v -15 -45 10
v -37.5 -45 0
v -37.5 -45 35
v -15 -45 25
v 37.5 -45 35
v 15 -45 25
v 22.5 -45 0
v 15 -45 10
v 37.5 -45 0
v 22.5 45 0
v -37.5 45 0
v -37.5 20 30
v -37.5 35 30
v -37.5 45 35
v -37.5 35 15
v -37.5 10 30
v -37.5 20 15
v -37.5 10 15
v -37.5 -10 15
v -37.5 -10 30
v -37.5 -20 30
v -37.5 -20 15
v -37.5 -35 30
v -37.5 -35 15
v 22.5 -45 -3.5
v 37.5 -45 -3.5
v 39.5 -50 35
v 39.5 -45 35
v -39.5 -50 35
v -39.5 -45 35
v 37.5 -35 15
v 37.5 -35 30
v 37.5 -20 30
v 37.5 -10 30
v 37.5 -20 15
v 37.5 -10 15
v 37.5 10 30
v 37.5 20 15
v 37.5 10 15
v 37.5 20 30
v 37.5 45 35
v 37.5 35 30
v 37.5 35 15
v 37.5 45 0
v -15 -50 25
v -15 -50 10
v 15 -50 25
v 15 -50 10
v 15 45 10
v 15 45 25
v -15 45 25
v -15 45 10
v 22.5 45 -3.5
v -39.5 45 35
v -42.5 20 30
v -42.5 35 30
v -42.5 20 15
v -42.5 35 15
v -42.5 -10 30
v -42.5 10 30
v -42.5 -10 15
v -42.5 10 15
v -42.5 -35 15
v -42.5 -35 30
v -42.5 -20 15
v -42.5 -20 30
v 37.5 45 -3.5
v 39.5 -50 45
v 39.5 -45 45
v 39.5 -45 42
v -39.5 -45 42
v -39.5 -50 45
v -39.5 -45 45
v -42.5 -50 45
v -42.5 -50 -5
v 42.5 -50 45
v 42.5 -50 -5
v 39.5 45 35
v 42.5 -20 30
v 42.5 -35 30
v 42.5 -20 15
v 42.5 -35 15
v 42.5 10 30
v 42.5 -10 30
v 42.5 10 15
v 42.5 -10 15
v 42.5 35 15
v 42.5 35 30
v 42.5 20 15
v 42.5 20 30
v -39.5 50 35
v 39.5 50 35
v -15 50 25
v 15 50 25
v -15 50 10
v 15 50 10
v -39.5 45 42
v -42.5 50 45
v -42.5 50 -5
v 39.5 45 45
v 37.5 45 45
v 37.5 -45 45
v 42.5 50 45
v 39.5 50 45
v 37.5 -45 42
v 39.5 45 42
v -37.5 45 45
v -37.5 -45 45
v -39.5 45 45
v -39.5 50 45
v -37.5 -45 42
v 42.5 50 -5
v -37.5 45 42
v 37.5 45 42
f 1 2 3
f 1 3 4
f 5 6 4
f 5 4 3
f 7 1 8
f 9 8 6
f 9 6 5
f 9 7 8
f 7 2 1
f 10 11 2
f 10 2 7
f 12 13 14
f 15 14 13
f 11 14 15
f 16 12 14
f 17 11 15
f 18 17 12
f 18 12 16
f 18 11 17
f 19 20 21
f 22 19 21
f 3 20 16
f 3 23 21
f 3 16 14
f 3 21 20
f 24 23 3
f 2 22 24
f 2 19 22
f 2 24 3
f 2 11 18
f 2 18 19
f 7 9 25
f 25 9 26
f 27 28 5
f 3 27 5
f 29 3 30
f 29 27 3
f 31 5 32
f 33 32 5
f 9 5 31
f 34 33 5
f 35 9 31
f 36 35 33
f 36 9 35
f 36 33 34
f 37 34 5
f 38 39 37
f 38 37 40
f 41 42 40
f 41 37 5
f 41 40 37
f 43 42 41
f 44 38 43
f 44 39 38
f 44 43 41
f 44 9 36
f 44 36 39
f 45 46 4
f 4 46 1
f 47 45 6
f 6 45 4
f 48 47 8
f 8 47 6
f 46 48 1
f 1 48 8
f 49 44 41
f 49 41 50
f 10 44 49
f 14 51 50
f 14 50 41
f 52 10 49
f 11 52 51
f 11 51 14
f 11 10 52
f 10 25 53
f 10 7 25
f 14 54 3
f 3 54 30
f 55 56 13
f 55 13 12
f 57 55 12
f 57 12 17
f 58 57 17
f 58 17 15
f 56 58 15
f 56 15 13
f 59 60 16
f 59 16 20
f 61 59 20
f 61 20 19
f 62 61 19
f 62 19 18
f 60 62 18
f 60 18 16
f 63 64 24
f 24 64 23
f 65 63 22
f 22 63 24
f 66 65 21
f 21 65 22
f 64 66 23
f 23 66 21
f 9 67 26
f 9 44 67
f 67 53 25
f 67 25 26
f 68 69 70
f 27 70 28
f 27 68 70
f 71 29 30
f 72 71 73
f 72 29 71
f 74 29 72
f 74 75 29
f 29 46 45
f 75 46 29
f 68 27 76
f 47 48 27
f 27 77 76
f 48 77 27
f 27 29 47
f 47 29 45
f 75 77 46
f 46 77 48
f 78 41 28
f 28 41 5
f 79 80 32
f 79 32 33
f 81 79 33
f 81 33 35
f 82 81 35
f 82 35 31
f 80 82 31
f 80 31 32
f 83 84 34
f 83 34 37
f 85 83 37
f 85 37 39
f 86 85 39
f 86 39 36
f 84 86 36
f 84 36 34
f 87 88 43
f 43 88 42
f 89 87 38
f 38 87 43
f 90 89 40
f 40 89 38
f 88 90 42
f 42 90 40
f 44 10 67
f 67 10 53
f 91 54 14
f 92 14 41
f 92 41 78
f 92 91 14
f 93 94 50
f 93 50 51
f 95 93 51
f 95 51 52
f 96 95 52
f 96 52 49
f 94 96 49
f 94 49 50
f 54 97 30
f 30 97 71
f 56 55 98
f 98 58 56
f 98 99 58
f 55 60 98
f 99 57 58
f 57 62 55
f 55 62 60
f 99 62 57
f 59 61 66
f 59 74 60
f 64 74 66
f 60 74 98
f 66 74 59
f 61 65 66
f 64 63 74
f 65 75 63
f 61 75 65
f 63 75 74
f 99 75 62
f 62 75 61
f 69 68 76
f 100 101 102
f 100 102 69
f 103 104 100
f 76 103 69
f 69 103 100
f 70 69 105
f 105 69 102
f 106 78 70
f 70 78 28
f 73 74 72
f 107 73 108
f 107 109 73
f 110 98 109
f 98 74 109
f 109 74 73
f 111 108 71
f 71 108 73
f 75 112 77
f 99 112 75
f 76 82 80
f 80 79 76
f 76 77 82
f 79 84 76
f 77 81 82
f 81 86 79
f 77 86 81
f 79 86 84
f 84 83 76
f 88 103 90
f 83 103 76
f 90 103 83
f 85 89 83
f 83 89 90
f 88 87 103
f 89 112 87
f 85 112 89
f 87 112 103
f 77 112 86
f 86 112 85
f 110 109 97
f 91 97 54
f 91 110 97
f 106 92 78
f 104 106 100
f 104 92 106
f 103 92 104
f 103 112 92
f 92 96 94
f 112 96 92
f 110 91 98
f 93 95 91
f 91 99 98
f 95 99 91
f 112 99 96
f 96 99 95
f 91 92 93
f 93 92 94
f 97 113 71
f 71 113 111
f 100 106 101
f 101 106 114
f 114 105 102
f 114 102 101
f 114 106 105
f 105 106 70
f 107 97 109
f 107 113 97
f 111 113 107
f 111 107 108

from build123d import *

# Parameters (mm, degrees)
SKETCH_W        = 75
SKETCH_H        = 90
PAD_DEPTH       = 45
THICKNESS_T     = 5
SKETCH002_W     = 15
SKETCH002_H     = 90
POCKET_DEPTH    = 3.5
SKETCH003_W     = 79
SKETCH003_H     = 10
POCKET001_DEPTH = 5
SKETCH004_W     = 79
SKETCH004_H     = 10
POCKET002_DEPTH = 5
SKETCH005_W     = 79
SKETCH005_H     = 7
POCKET003_DEPTH = 90
SKETCH006_W     = 15
SKETCH006_H     = 15
SKETCH006_W_2   = 20
POCKET004_DEPTH = 5
SKETCH007_W     = 15
SKETCH007_H     = 15
SKETCH007_W_2   = 20
POCKET005_DEPTH = 5
SKETCH008_W     = 30
SKETCH008_H     = 15
POCKET006_DEPTH = 5
SKETCH009_W     = 30
SKETCH009_H     = 15
POCKET007_DEPTH = 5


with BuildPart() as part:
    # Sketch → Pad (new body)
    with BuildSketch(Plane.XY):
        Rectangle(SKETCH_W, SKETCH_H)
    extrude(amount=PAD_DEPTH)

    # Thickness
    thickness_openings = [part.faces().sort_by_distance(p)[0] for p in [
        (0, 0, 45),
    ]]
    offset(amount=THICKNESS_T, openings=thickness_openings, kind=Kind.INTERSECTION)

    # Sketch002 (on Face5 of Thickness) → Pocket (cut)
    with BuildSketch(Plane.XY):
        with Locations((30, 0)):
            Rectangle(SKETCH002_W, SKETCH002_H)
    extrude(amount=-POCKET_DEPTH, mode=Mode.SUBTRACT)

    # Sketch003 (on Face13 of Pocket) → Pocket001 (cut)
    with BuildSketch(Plane.XZ.offset(50)):
        with Locations((0, 40)):
            Rectangle(SKETCH003_W, SKETCH003_H)
    extrude(amount=-POCKET001_DEPTH, mode=Mode.SUBTRACT)

    # Sketch004 (on Face19 of Pocket001) → Pocket002 (cut)
    with BuildSketch(Plane(origin=(0, 50, 0), x_dir=(-1, 0, 0), z_dir=(0, 1, 0))):
        with Locations((0, 40)):
            Rectangle(SKETCH004_W, SKETCH004_H)
    extrude(amount=-POCKET002_DEPTH, mode=Mode.SUBTRACT)

    # Sketch005 (on Face12 of Pocket002) → Pocket003 (cut)
    with BuildSketch(Plane(origin=(0, 45, 0), x_dir=(-1, 0, 0), z_dir=(0, 1, 0))):
        with Locations((0, 38.5)):
            Rectangle(SKETCH005_W, SKETCH005_H)
    extrude(amount=-POCKET003_DEPTH, mode=Mode.SUBTRACT)

    # Sketch006 (on Face24 of Pocket003) → Pocket004 (cut)
    with BuildSketch(Plane(origin=(-42.5, 0, 0), x_dir=(0, -1, 0), z_dir=(-1, 0, 0))):
        with Locations((-27.5, 22.5)):
            Rectangle(SKETCH006_W, SKETCH006_H)
        with Locations((27.5, 22.5)):
            Rectangle(SKETCH006_W, SKETCH006_H)
        with Locations((0, 22.5)):
            Rectangle(SKETCH006_W_2, SKETCH006_H)
    extrude(amount=-POCKET004_DEPTH, mode=Mode.SUBTRACT)

    # Sketch007 (on Face38 of Pocket004) → Pocket005 (cut)
    with BuildSketch(Plane.YZ.offset(42.5)):
        with Locations((-27.5, 22.5)):
            Rectangle(SKETCH007_W, SKETCH007_H)
        with Locations((27.5, 22.5)):
            Rectangle(SKETCH007_W, SKETCH007_H)
        with Locations((0, 22.5)):
            Rectangle(SKETCH007_W_2, SKETCH007_H)
    extrude(amount=-POCKET005_DEPTH, mode=Mode.SUBTRACT)

    # Sketch008 (on Face26 of Pocket005) → Pocket006 (cut)
    with BuildSketch(Plane.XZ.offset(50)):
        with Locations((0, 17.5)):
            Rectangle(SKETCH008_W, SKETCH008_H)
    extrude(amount=-POCKET006_DEPTH, mode=Mode.SUBTRACT)

    # Sketch009 (on Face57 of Pocket006) → Pocket007 (cut)
    with BuildSketch(Plane(origin=(0, 50, 0), x_dir=(-1, 0, 0), z_dir=(0, 1, 0))):
        with Locations((0, 17.5)):
            Rectangle(SKETCH009_W, SKETCH009_H)
    extrude(amount=-POCKET007_DEPTH, mode=Mode.SUBTRACT)


solid = part.part
